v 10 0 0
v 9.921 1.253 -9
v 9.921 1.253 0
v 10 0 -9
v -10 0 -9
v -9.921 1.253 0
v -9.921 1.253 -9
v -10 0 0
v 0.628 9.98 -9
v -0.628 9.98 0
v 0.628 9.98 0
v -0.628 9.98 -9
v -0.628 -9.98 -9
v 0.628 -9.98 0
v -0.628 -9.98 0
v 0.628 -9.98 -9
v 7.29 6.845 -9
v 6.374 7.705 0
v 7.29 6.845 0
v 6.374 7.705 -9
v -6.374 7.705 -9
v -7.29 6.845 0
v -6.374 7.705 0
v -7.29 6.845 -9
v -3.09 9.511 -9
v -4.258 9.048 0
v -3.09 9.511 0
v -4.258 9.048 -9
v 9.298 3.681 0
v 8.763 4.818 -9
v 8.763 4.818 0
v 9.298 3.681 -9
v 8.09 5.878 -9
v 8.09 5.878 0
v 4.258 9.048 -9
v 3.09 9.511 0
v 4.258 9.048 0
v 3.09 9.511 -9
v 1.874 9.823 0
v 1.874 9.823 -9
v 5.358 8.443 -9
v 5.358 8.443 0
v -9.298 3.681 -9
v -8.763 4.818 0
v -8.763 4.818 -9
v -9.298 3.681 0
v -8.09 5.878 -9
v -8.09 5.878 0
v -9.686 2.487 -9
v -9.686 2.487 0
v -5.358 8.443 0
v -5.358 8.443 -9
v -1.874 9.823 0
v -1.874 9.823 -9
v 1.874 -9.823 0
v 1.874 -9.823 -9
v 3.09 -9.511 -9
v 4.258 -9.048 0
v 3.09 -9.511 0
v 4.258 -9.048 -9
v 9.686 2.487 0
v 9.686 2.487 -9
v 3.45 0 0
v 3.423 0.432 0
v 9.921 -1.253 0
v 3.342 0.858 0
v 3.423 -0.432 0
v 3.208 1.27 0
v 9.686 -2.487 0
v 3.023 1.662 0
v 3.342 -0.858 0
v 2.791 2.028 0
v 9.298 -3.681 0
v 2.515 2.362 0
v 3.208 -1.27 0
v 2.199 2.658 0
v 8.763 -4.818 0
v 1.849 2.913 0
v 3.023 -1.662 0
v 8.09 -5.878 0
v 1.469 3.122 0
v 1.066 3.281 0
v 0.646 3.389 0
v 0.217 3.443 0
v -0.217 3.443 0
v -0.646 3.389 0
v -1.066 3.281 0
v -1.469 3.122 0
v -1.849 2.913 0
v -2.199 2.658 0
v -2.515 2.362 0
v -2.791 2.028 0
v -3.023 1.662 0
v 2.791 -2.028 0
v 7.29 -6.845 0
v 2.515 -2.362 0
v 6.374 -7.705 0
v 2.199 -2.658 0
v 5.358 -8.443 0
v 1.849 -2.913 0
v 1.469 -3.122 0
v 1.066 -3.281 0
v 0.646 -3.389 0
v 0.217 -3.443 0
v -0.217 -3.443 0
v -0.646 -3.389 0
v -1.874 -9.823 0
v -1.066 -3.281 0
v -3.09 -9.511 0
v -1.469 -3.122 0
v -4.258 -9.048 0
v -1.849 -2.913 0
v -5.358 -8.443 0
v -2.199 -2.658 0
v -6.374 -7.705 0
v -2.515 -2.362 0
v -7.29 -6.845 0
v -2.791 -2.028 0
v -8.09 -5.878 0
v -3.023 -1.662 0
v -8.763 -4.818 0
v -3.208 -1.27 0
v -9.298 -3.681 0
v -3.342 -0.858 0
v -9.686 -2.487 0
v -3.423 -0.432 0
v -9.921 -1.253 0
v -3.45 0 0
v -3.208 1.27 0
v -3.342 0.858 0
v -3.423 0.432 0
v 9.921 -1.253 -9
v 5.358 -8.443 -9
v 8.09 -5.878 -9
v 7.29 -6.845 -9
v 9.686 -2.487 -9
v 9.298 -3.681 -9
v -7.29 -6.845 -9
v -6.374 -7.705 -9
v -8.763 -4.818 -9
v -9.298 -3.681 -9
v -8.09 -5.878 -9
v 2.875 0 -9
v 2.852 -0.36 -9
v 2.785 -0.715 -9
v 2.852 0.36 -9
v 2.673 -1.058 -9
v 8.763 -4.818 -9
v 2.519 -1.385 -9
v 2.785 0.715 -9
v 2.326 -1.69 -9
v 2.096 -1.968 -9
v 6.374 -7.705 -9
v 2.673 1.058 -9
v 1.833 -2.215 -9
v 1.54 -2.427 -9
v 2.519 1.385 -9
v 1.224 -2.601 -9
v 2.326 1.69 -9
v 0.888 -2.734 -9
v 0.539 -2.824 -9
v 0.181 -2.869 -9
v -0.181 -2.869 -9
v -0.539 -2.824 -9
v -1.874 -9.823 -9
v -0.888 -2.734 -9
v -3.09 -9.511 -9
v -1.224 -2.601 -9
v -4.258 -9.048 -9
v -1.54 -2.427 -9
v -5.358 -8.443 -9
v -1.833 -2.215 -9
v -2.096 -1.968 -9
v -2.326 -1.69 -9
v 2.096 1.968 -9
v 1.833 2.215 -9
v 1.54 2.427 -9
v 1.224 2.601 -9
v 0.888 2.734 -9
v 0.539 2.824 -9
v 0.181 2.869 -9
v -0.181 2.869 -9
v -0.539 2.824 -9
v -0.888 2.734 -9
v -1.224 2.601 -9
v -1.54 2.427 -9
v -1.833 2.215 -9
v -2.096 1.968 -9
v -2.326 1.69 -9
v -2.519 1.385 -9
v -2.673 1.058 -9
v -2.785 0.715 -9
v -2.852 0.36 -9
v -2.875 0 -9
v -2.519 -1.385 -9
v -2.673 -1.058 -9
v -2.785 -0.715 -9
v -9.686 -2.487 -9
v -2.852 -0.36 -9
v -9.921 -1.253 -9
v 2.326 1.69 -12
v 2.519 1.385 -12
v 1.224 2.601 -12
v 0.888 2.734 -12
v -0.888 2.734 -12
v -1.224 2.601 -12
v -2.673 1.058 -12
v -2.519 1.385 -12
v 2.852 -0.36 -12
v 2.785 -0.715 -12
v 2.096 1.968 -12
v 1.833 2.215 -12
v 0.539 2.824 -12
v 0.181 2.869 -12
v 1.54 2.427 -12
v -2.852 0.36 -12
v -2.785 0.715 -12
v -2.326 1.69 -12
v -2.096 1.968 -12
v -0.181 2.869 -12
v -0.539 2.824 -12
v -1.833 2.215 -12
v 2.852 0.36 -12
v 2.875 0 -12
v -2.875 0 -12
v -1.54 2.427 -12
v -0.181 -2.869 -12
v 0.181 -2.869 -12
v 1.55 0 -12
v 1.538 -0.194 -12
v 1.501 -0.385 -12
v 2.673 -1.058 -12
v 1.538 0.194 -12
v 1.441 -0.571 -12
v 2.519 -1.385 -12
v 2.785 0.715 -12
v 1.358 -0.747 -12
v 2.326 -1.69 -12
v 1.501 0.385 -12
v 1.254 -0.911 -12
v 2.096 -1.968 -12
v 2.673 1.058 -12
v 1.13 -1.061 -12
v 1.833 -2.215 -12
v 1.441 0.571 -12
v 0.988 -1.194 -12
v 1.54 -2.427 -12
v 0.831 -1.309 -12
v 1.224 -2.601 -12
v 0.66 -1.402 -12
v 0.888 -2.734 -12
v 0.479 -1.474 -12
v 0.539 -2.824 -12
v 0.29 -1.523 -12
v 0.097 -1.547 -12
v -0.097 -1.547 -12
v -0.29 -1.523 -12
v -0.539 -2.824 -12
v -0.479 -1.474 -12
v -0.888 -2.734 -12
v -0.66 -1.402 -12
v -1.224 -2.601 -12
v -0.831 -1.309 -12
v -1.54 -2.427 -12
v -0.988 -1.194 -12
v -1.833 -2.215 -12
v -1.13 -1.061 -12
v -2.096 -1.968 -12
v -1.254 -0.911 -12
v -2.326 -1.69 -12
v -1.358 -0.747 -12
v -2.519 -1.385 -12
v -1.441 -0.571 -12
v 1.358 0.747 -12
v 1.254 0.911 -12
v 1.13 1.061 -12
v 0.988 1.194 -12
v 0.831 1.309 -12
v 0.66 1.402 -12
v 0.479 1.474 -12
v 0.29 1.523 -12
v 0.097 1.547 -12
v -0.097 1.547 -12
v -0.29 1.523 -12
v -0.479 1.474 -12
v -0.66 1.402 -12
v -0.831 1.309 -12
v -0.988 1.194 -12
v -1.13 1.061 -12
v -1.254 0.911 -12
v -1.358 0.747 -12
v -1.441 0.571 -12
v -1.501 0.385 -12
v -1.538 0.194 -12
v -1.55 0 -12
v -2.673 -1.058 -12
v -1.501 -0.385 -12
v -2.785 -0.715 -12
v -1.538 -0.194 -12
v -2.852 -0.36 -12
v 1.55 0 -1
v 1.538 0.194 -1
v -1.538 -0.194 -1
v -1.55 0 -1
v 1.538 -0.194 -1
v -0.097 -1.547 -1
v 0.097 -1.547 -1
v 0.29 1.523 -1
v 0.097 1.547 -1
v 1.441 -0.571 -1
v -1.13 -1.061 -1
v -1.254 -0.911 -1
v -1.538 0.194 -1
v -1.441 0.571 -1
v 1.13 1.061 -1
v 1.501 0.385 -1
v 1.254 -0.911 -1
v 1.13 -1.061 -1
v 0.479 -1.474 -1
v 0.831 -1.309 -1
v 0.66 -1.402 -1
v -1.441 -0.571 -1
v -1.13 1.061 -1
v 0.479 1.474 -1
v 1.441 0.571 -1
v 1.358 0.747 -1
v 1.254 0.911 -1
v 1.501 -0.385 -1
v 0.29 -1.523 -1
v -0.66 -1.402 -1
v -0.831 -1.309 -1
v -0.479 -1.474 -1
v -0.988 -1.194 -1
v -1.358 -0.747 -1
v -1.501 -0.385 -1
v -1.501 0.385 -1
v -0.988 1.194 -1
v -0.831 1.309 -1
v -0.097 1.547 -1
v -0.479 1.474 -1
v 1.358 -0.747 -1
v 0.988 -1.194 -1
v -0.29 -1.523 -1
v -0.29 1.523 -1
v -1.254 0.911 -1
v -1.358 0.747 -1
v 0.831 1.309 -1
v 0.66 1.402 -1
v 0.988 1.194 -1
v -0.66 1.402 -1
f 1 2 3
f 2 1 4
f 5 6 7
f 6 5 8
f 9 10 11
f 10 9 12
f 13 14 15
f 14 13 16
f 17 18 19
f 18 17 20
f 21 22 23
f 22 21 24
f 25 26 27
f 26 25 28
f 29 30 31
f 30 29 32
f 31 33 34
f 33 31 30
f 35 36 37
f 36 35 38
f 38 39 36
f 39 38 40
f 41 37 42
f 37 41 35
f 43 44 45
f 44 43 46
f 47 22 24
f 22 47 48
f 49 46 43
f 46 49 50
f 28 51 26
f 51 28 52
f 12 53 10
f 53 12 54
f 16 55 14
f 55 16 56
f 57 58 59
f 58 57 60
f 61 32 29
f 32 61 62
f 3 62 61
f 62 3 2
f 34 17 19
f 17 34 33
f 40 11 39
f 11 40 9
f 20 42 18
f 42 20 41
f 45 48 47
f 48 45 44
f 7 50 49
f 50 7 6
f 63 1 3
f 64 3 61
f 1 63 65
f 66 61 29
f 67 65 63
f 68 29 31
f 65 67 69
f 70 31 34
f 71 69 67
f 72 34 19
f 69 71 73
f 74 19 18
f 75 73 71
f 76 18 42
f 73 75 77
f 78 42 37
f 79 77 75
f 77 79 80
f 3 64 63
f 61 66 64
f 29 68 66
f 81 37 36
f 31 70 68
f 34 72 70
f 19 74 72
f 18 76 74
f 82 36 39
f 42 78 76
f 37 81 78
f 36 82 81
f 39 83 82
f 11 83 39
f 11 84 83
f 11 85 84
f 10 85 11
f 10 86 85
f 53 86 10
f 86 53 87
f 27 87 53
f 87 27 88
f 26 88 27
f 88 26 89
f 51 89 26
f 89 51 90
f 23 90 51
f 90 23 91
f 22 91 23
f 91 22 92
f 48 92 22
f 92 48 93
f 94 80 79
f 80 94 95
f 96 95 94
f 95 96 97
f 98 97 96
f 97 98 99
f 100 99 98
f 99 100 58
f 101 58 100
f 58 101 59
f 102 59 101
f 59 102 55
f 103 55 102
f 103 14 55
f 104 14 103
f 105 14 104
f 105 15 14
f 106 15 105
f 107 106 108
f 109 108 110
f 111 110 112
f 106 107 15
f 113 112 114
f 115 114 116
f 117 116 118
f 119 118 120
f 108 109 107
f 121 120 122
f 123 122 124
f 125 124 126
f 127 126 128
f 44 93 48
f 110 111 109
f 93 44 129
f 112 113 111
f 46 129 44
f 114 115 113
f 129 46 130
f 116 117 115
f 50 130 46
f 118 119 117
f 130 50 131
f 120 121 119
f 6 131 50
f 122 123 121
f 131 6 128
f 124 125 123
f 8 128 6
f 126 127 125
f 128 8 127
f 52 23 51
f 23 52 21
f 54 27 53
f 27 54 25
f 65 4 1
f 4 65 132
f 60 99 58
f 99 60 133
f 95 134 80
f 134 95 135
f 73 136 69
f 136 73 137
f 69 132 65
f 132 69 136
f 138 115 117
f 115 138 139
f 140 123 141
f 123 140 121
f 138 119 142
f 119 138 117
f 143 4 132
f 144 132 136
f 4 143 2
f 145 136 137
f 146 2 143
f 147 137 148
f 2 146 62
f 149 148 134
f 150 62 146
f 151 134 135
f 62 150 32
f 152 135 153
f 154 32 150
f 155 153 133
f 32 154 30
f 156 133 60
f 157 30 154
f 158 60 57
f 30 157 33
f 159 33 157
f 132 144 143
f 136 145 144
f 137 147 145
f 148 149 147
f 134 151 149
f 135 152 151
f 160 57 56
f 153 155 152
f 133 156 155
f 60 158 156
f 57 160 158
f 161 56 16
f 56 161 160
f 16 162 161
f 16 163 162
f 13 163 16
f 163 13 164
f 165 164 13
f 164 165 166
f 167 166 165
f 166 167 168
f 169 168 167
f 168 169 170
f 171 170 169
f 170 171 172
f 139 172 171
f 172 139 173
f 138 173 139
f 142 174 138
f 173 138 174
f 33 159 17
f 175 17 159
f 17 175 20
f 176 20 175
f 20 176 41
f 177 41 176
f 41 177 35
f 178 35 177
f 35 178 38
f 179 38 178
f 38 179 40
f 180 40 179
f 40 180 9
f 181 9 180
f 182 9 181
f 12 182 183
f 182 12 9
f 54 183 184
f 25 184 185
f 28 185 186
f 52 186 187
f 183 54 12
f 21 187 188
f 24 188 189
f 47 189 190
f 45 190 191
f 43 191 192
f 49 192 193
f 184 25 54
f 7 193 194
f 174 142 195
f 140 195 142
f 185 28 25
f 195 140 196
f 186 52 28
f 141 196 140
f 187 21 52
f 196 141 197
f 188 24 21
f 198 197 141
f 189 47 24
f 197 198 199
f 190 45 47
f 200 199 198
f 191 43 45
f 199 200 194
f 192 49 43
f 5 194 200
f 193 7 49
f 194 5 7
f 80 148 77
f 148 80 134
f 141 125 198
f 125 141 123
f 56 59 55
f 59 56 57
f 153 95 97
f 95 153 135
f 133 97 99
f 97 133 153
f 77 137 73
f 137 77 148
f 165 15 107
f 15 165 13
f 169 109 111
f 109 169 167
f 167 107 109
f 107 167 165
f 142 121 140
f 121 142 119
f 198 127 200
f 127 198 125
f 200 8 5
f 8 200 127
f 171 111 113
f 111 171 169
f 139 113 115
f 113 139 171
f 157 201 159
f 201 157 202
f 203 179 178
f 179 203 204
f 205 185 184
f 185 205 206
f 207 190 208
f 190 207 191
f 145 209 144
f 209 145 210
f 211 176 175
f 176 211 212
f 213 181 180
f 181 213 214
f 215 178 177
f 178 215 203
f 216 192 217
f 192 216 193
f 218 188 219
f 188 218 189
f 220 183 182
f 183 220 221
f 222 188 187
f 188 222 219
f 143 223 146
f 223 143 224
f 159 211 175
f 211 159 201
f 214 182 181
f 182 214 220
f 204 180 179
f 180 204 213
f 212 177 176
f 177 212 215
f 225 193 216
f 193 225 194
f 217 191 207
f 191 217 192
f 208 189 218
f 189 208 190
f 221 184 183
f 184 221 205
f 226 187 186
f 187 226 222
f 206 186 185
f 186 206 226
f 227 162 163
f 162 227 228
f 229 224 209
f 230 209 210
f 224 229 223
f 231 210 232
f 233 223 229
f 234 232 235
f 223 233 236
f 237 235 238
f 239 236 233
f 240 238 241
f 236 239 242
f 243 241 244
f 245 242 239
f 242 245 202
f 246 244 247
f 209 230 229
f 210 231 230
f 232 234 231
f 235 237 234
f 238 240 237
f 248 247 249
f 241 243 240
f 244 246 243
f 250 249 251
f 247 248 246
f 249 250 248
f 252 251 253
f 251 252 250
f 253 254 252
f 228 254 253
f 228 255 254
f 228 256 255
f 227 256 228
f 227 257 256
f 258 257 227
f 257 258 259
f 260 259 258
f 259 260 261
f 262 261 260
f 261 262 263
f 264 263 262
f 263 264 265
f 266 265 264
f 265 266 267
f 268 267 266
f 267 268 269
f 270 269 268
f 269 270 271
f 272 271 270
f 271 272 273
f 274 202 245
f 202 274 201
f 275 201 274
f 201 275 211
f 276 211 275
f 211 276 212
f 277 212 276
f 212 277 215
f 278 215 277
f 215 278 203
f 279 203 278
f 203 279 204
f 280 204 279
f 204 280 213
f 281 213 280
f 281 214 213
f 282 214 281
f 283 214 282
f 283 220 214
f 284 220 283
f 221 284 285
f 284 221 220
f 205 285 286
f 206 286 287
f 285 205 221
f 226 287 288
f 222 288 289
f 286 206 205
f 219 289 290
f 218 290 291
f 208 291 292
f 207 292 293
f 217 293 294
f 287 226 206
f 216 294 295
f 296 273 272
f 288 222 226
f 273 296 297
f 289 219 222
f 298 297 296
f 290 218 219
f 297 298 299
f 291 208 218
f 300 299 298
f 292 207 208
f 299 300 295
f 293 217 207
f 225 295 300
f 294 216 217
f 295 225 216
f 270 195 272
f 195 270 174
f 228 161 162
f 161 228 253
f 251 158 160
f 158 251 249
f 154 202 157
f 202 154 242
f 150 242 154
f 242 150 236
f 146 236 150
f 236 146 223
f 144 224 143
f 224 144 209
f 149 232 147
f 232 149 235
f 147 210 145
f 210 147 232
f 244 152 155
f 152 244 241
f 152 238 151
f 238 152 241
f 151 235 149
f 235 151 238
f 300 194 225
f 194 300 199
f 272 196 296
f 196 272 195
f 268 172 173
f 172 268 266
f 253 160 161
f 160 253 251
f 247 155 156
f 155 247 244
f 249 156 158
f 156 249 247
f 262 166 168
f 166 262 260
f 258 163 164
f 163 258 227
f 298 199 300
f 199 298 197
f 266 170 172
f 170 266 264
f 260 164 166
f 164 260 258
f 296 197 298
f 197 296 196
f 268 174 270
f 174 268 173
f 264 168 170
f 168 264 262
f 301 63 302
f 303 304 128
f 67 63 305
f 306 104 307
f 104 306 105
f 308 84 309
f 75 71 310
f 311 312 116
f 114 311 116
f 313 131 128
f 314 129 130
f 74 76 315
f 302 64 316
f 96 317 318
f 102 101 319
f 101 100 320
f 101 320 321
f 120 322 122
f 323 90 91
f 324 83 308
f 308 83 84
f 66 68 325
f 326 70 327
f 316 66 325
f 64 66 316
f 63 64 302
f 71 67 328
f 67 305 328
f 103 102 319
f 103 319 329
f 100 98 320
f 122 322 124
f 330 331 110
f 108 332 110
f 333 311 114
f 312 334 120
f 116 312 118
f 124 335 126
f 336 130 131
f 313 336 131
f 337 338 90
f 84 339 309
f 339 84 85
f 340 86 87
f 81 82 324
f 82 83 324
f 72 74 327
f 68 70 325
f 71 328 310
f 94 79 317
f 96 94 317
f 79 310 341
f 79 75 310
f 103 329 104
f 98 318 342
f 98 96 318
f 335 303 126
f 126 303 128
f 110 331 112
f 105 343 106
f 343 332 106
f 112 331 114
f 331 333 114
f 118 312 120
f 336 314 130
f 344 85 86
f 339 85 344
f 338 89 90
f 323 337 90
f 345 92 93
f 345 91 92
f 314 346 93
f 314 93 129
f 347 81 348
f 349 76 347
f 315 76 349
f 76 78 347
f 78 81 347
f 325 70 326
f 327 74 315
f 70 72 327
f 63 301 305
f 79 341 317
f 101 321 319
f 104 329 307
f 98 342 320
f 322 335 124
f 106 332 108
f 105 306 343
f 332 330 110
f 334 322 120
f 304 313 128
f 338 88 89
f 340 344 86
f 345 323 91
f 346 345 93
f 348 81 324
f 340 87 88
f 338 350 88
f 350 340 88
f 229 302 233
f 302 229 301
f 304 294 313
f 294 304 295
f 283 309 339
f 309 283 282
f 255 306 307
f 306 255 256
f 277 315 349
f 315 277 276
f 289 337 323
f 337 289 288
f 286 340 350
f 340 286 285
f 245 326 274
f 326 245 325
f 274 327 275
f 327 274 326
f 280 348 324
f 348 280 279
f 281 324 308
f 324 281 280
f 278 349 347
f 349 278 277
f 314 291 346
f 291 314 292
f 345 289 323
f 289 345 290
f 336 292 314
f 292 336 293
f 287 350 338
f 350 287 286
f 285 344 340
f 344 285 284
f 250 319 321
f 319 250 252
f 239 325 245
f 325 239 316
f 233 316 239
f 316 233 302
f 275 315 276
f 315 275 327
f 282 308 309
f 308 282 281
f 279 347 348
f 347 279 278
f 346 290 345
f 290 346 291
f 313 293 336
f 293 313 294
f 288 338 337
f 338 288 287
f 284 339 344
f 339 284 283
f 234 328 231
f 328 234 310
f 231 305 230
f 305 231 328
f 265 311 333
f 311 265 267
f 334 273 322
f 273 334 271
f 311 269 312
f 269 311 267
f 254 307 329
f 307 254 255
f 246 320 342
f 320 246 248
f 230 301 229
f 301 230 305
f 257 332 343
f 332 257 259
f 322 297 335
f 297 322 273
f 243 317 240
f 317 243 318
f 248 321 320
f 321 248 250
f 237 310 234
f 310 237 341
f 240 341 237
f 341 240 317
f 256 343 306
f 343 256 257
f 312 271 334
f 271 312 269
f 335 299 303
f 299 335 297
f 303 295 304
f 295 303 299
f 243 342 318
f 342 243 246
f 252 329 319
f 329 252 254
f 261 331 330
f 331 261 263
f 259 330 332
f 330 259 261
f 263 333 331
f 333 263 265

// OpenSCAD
$fn = 50;


difference() {
	union() {
		translate(v = [0, 0, -9.0000000000]) {
			cylinder(h = 9, r = 10.0000000000);
		}
		#translate(v = [0, 0, -12.0000000000]) {
			cylinder(h = 12, r = 2.8750000000);
		}
	}
	union() {
		translate(v = [0, 0, 0]) {
			rotate(a = [0, 0, 0]) {
				difference() {
					union() {
						translate(v = [0, 0, -12.0000000000]) {
							cylinder(h = 12, r = 1.2500000000);
						}
						translate(v = [0, 0, -1.0000000000]) {
							cylinder(h = 1.0000000000, r1 = 1.5500000000, r2 = 3.4500000000);
						}
						translate(v = [0, 0, -12.0000000000]) {
							cylinder(h = 12, r = 1.5500000000);
						}
						translate(v = [0, 0, -12.0000000000]) {
							cylinder(h = 12, r = 1.2500000000);
						}
					}
					union();
				}
			}
		}
	}
}
